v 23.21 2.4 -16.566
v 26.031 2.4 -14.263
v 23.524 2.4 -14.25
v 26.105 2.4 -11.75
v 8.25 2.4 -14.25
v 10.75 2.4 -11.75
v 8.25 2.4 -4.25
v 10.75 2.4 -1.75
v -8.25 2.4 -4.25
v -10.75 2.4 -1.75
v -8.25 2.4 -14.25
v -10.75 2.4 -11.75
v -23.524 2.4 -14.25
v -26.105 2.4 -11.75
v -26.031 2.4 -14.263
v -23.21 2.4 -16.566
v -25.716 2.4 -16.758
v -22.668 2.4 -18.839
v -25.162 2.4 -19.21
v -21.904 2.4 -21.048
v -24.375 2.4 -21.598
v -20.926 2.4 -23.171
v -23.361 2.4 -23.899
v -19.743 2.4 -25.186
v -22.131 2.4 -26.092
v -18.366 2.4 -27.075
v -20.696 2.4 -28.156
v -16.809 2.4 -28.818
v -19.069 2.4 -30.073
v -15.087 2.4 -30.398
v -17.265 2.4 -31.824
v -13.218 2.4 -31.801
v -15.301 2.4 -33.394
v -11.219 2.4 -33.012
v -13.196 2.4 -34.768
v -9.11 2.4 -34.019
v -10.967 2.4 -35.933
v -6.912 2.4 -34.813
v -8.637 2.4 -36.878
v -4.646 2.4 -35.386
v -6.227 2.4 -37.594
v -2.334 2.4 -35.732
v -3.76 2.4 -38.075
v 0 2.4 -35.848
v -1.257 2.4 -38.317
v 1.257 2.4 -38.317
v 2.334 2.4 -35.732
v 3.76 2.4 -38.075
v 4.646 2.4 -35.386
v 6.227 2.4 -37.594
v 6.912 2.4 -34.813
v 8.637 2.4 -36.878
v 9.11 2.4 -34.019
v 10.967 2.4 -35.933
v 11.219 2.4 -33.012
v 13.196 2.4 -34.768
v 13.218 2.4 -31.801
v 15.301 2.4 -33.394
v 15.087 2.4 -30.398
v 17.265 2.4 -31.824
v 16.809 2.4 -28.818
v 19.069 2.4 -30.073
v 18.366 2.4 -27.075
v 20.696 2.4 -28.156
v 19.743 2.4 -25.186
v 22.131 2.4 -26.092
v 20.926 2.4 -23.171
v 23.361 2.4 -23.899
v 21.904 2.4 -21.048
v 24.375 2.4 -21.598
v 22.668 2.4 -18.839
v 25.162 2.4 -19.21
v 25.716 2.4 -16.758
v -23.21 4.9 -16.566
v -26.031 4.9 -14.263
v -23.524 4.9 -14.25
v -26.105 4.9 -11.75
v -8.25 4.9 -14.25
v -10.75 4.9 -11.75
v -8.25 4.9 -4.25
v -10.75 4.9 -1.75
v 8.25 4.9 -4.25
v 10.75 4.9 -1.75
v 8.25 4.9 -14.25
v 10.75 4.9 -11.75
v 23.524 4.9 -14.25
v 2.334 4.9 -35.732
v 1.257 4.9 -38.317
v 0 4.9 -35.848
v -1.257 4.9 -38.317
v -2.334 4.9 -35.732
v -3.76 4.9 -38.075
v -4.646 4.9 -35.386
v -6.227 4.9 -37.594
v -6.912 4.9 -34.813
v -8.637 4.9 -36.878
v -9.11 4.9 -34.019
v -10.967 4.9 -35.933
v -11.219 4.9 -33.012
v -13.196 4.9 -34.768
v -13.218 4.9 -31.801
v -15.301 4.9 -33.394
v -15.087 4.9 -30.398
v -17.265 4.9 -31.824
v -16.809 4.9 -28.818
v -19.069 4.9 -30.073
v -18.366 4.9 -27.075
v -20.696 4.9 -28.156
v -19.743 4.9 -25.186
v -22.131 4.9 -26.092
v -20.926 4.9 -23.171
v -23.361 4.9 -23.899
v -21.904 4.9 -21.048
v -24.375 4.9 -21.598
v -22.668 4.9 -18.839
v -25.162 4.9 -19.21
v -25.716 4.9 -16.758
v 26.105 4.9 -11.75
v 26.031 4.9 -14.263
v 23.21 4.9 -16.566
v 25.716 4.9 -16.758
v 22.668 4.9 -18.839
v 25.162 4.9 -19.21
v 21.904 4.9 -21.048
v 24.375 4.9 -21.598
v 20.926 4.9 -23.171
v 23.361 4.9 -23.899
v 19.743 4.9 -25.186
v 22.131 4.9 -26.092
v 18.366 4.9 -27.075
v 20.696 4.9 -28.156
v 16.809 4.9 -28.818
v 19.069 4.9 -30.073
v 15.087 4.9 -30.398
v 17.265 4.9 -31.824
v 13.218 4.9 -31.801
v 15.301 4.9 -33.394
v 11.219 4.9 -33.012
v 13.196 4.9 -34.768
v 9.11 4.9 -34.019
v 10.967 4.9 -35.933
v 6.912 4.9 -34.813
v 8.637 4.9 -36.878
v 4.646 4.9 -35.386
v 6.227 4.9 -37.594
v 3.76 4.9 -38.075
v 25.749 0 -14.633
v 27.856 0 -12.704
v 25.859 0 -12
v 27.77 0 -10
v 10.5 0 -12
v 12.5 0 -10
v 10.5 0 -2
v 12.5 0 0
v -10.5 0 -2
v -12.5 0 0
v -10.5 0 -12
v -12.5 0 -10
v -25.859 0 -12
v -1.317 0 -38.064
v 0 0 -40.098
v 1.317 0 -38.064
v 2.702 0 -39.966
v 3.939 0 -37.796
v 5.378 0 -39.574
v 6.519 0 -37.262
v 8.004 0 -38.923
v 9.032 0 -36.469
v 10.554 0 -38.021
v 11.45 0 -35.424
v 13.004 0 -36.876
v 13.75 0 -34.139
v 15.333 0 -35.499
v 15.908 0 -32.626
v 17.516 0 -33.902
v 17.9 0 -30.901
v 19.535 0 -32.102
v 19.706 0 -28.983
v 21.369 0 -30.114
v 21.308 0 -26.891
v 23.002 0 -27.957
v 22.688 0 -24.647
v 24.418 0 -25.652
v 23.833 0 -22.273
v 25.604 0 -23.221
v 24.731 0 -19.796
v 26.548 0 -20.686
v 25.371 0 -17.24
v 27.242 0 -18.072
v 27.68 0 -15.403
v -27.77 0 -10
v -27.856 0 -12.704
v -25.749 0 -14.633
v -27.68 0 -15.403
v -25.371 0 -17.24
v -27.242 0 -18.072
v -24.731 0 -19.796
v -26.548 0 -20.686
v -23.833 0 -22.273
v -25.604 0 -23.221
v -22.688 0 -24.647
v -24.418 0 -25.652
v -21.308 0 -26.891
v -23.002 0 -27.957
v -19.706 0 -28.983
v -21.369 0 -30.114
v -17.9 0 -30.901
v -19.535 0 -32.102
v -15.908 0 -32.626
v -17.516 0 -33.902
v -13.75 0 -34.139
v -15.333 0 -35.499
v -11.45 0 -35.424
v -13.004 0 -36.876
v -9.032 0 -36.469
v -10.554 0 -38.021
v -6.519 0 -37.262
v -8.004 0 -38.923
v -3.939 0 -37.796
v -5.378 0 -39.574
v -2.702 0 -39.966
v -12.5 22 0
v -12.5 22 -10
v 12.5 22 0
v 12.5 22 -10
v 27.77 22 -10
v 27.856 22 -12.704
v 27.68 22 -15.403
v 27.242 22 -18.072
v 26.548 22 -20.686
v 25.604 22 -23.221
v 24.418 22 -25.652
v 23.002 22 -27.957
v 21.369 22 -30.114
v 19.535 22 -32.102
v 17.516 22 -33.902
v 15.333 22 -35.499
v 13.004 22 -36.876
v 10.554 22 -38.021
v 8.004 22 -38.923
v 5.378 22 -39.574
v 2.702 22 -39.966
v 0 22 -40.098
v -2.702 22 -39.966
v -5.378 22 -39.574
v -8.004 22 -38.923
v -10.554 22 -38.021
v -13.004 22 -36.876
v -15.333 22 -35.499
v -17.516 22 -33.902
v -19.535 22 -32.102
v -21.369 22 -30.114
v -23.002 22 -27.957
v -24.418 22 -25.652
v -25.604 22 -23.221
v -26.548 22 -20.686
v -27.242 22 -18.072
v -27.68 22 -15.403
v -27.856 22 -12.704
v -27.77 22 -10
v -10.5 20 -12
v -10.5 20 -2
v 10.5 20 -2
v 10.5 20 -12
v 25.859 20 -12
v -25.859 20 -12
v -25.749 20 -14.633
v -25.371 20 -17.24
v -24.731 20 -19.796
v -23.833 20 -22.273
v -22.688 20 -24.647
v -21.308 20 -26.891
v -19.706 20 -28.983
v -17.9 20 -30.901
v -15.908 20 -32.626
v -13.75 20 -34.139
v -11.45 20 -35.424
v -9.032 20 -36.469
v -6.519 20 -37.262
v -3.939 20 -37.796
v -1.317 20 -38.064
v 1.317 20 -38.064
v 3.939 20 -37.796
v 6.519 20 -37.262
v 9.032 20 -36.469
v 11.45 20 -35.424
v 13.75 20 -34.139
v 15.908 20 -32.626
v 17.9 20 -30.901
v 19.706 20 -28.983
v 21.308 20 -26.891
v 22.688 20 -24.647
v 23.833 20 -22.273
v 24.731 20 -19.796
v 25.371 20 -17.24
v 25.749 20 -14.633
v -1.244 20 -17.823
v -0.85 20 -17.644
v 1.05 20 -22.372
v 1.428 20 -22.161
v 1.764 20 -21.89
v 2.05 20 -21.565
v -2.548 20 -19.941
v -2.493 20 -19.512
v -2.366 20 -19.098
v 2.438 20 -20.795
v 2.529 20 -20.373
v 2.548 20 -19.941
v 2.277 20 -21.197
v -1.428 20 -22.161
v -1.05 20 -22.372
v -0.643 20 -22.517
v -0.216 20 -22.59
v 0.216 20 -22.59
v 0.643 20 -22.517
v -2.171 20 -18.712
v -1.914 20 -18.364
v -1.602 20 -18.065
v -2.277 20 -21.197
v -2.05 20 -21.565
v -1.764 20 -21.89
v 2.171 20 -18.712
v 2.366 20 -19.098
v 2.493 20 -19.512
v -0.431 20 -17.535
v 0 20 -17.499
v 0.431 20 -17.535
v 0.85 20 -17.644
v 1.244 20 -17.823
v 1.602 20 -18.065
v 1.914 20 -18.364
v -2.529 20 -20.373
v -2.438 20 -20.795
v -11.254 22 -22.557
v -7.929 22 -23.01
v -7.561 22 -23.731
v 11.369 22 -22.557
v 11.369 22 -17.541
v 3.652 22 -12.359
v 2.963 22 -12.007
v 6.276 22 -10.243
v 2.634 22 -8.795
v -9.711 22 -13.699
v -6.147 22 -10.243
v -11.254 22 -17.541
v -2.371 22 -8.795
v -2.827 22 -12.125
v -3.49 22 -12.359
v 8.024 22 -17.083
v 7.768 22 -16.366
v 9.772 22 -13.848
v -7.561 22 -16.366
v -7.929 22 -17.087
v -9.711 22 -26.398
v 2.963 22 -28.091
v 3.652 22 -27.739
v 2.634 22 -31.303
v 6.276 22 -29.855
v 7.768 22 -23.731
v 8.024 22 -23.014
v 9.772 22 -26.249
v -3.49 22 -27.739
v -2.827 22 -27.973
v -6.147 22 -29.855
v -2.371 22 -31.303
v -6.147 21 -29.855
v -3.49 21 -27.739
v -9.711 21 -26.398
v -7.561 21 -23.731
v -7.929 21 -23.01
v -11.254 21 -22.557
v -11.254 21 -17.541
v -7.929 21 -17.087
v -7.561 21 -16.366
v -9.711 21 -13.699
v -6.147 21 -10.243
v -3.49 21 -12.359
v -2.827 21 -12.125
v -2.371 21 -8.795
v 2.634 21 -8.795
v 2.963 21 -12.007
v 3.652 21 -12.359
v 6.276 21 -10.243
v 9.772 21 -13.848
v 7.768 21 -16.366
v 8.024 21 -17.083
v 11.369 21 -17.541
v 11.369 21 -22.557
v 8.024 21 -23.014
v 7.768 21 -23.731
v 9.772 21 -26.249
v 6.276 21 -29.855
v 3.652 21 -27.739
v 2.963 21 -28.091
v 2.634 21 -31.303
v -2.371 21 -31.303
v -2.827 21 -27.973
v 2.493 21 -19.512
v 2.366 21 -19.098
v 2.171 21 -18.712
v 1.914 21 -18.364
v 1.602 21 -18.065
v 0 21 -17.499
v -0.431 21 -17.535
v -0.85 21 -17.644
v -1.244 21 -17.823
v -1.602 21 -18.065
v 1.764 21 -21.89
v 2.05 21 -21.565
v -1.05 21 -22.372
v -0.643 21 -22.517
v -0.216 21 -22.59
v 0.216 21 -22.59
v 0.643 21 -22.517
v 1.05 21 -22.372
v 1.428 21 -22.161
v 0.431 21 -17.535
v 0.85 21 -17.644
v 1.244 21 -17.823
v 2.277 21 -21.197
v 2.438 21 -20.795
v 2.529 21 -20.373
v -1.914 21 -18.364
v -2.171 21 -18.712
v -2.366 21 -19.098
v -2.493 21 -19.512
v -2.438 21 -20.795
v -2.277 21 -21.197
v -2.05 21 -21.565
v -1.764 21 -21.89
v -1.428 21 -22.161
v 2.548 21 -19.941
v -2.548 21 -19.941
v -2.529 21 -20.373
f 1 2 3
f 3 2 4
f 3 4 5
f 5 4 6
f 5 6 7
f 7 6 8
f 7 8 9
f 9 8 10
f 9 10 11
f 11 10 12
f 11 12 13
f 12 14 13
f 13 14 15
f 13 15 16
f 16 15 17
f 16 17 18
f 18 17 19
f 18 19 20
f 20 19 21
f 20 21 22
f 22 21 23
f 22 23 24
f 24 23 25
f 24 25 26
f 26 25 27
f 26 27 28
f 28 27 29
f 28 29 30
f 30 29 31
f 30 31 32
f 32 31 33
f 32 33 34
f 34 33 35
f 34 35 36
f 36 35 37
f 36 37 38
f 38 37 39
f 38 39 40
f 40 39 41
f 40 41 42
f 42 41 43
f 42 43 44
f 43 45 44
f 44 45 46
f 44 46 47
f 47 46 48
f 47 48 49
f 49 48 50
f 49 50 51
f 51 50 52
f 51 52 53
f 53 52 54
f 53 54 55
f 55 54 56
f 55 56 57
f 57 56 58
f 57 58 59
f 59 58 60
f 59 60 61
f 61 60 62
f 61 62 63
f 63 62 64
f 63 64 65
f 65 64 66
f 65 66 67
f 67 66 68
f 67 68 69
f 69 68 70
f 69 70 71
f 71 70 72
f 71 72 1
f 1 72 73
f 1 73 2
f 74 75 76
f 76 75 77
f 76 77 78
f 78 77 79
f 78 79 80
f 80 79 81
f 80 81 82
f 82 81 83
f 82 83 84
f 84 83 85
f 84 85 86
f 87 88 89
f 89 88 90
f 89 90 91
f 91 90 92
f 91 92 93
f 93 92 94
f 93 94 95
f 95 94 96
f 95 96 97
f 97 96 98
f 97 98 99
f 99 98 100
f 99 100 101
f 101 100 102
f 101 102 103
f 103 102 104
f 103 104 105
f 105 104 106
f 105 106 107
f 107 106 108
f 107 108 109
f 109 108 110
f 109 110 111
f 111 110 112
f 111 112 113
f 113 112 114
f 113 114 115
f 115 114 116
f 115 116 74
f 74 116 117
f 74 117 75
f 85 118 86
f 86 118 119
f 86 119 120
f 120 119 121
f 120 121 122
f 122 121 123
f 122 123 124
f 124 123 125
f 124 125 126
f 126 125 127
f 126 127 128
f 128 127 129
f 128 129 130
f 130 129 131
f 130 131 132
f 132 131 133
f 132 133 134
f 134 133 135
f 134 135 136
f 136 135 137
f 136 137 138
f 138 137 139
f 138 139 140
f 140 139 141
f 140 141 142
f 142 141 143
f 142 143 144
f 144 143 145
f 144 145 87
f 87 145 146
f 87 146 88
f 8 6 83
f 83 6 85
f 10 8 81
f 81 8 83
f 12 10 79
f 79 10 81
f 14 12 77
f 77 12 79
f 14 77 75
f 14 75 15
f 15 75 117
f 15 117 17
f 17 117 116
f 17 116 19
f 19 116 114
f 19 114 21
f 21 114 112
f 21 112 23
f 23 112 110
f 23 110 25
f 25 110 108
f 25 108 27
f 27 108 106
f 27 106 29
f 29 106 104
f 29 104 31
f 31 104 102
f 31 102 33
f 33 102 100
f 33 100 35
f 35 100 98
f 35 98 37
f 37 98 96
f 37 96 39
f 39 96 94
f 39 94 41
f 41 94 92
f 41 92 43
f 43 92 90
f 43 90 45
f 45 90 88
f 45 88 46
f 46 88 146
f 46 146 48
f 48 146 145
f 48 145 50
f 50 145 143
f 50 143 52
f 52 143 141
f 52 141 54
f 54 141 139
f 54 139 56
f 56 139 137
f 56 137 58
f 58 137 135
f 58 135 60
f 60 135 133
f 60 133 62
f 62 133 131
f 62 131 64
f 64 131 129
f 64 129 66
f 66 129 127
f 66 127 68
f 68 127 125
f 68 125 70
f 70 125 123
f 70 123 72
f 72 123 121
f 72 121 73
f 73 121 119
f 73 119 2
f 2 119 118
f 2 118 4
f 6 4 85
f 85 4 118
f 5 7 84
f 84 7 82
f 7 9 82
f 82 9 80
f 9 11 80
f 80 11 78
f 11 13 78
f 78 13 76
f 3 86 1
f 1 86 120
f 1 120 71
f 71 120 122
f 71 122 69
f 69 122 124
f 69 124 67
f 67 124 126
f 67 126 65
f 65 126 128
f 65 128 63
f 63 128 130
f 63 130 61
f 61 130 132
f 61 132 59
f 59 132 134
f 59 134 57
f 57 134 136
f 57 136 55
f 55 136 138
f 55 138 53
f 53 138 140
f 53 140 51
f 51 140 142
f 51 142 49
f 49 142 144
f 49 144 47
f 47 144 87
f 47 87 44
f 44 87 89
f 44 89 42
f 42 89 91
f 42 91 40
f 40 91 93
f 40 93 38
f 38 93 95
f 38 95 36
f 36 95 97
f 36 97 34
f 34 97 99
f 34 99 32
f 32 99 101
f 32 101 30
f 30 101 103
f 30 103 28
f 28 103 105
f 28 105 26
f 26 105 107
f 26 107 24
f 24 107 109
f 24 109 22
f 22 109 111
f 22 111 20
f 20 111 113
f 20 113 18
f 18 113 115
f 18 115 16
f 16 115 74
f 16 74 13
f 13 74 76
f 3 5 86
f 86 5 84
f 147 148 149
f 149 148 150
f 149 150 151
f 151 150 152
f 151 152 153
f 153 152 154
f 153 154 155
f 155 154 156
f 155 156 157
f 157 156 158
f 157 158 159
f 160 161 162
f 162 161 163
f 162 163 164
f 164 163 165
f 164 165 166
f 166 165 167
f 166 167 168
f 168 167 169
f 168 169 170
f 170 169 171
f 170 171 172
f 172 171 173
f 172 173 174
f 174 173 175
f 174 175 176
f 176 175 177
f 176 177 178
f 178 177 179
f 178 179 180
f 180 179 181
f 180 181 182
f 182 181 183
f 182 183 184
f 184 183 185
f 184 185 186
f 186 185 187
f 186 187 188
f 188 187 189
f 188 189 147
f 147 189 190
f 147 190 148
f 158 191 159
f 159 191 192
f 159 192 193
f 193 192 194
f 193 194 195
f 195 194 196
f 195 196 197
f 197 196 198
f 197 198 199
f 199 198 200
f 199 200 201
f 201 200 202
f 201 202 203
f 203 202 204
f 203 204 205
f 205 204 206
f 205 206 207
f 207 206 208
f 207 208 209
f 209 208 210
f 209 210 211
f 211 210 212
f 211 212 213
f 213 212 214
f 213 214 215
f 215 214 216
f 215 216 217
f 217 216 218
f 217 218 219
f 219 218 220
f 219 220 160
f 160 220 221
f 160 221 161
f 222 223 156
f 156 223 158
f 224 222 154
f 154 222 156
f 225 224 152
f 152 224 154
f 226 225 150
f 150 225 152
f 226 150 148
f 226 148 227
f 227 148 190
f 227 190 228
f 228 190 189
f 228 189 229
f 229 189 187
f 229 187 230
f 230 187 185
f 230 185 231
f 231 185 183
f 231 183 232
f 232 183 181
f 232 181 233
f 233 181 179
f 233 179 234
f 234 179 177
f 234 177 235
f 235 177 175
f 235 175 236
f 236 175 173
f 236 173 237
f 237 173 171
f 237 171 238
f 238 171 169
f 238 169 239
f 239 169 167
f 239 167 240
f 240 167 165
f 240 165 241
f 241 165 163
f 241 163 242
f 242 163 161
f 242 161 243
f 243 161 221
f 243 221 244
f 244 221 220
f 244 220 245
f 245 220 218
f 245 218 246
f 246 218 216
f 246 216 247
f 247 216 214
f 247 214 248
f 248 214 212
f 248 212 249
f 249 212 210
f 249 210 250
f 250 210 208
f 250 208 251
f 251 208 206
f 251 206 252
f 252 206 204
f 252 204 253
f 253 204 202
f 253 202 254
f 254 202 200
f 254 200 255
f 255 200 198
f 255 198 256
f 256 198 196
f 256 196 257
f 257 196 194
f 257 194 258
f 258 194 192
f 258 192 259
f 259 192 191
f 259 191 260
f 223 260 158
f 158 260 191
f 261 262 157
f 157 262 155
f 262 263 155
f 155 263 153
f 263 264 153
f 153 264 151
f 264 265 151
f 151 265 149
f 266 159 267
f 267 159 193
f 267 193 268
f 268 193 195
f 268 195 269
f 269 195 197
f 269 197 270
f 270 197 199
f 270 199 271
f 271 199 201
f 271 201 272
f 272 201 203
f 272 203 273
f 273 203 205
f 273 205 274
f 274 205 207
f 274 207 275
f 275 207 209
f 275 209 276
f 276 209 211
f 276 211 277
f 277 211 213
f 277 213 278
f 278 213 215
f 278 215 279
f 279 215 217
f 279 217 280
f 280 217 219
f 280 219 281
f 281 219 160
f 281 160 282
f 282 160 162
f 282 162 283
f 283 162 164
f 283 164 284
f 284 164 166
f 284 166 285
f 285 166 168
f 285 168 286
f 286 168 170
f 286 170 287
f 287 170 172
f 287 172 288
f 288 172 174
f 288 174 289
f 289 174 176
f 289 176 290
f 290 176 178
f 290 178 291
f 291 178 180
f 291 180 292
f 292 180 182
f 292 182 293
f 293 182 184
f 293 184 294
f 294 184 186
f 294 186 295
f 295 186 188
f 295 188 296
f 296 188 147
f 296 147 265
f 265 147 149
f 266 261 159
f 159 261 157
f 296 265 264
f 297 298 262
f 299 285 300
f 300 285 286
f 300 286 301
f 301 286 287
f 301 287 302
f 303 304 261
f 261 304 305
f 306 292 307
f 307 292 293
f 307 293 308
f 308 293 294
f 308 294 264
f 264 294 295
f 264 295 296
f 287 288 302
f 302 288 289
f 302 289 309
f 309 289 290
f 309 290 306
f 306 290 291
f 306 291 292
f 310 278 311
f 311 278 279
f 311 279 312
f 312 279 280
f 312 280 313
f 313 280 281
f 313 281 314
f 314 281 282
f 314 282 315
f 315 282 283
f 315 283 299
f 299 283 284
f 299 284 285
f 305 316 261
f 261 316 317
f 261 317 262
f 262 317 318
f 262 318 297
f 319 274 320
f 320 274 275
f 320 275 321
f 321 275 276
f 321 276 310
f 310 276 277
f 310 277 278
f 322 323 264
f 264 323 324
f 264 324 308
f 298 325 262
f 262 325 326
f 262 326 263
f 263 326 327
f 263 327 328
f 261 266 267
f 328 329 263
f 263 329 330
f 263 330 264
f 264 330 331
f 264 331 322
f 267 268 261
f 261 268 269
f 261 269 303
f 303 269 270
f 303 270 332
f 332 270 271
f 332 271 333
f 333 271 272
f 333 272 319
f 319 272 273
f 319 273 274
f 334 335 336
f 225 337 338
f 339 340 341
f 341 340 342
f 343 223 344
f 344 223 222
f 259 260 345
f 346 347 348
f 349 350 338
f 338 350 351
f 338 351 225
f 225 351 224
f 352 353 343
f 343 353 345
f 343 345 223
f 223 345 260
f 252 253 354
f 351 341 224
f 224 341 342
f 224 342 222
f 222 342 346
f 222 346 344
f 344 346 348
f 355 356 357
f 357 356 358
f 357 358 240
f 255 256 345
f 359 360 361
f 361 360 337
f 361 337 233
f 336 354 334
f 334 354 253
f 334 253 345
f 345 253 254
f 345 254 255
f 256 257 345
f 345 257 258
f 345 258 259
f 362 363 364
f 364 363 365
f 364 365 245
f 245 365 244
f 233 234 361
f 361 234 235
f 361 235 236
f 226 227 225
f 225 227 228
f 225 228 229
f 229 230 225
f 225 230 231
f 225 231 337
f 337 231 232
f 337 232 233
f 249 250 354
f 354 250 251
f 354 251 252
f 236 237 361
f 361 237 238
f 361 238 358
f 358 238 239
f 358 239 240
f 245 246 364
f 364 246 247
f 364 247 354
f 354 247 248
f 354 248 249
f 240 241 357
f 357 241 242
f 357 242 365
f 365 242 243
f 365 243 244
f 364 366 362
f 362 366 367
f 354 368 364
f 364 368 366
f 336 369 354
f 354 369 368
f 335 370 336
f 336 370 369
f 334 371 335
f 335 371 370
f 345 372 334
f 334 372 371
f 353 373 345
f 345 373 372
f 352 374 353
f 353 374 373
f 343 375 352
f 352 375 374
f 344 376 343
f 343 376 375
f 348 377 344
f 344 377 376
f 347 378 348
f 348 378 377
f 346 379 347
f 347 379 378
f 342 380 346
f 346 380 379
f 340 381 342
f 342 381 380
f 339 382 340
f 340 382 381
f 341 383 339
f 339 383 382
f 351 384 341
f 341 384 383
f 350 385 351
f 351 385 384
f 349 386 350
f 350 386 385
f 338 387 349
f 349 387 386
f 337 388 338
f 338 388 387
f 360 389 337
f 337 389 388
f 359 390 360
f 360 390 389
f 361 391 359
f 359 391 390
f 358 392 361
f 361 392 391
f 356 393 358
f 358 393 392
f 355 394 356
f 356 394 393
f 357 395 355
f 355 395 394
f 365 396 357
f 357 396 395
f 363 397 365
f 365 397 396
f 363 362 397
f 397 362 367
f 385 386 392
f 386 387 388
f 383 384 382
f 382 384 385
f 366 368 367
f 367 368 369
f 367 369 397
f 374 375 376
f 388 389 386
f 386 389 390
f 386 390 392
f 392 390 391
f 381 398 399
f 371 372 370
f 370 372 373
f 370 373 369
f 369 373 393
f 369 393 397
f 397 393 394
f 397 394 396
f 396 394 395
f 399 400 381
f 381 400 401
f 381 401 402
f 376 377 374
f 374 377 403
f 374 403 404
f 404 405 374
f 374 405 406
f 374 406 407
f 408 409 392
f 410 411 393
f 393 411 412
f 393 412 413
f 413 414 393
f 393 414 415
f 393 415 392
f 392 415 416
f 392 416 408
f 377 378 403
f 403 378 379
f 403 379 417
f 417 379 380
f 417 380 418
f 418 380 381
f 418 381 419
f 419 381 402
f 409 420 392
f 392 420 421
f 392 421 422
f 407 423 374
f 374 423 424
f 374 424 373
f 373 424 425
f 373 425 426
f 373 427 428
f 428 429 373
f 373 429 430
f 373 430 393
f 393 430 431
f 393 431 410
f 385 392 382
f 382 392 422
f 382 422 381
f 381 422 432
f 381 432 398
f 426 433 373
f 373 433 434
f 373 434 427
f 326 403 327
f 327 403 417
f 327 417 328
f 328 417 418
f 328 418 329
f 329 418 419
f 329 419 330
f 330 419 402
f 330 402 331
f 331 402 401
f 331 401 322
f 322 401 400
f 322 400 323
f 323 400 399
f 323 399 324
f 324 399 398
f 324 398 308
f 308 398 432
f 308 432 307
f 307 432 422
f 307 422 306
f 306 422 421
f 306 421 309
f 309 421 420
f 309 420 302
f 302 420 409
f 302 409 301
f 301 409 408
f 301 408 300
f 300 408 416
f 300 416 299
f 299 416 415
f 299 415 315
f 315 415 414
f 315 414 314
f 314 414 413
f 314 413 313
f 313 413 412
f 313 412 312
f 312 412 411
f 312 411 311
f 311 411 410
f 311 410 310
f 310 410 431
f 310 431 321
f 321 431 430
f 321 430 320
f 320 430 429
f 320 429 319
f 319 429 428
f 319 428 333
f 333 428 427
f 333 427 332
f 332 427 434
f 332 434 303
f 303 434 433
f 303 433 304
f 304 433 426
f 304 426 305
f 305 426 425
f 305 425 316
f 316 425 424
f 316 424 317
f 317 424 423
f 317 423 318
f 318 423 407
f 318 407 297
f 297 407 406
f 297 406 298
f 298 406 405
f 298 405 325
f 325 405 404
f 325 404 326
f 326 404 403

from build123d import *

# Parameters (mm, degrees)
EXTRUIR_L_MINA1_DEPTH   = 20
SALIENTE_EXTRUIR1_DEPTH = 2
EXTRUIR_L_MINA2_DEPTH   = 2.5
ENVOLVER1_START         = -1
ENVOLVER1_DEPTH         = 1
CROQUIS13_R             = 2.55
CORTAR_EXTRUIR1_DEPTH   = 54.553658795


# Read off the part's stored shape, not the designer's step: Envolver1
with BuildPart() as part:
    # Croquis1 → Extruir-Lámina1 (new body)
    with BuildSketch(Plane(origin=(0, 0, 0), x_dir=(1, 0, 0), z_dir=(0, 1, 0))):
        with BuildLine():
            Line((-27.77, 10), (-12.5, 10))
            Line((-12.5, 10), (-12.5, 0))
            Line((-12.5, 0), (12.5, 0))
            Line((12.5, 0), (12.5, 10))
            Line((12.5, 10), (27.77, 10))
            ThreePointArc((27.77, 10), (0, 40.097565641), (-27.77, 10))
        make_face()
        with BuildLine():
            Line((-25.858908766, 12), (-10.5, 12))
            Line((-10.5, 12), (-10.5, 2))
            Line((-10.5, 2), (10.5, 2))
            Line((10.5, 2), (10.5, 12))
            Line((10.5, 12), (25.858908766, 12))
            ThreePointArc((25.858908766, 12), (0, 38.097565641), (-25.858908766, 12))
        make_face(mode=Mode.SUBTRACT)
    extrude(amount=EXTRUIR_L_MINA1_DEPTH)

    # Croquis2 → Saliente-Extruir1 (add)
    with BuildSketch(Plane(origin=(0, 20, 0), x_dir=(1, 0, 0), z_dir=(0, 1, 0))):
        with BuildLine():
            Line((12.5, 10), (27.77, 10))
            ThreePointArc((27.77, 10), (0, 40.097565641), (-27.77, 10))
            Line((-27.77, 10), (-12.5, 10))
            Line((-12.5, 10), (-12.5, 0))
            Line((-12.5, 0), (12.5, 0))
            Line((12.5, 0), (12.5, 10))
        make_face()
    extrude(amount=SALIENTE_EXTRUIR1_DEPTH)

    # Envolver1 outline → Envolver1 (cut)
    with BuildSketch(Plane(origin=(0, 22, 0), x_dir=(1, 0, 0), z_dir=(0, 1, 0)).offset(ENVOLVER1_START)):
        Polygon((-3.489748997, 27.738758035), (-6.147187537, 29.854623251), (-9.711069089, 26.398480357), (-7.560564468, 23.731186854), (-7.929128313, 23.010388183), (-11.254274193, 22.556610346), (-11.254274193, 17.540955296), (-7.929128313, 17.087177459), (-7.560564468, 16.366378787), (-9.711069089, 13.699085285), (-6.147187537, 10.242942391), (-3.489748997, 12.358807607), (-2.826803524, 12.124826852), (-2.371254467, 8.794541744), (2.633615094, 8.794541744), (2.963448904, 12.006836247), (3.651797726, 12.358807607), (6.27612761, 10.242942391), (9.772472758, 13.848279425), (7.767550058, 16.366378787), (8.024300184, 17.08340881), (11.369187461, 17.540955296), (11.369187461, 22.556610346), (8.024300184, 23.014156831), (7.767550058, 23.731186854), (9.772472758, 26.249286217), (6.27612761, 29.854623251), (3.651797726, 27.738758035), (2.963448904, 28.090729394), (2.633615094, 31.303023897), (-2.371254467, 31.303023897), (-2.826803524, 27.97273879), align=None)
    extrude(amount=ENVOLVER1_DEPTH, mode=Mode.SUBTRACT)

    # Croquis13 → Cortar-Extruir1 (cut, through all)
    with BuildSketch(Plane(origin=(0, 22, 0), x_dir=(1, 0, 0), z_dir=(0, 1, 0))):
        with Locations(Location((0, 20.048782821, 0), (0, 0, 270))):
            Circle(CROQUIS13_R)
    extrude(amount=-CORTAR_EXTRUIR1_DEPTH, mode=Mode.SUBTRACT)


with BuildPart() as body_2:
    # Croquis9 → Extruir-Lámina2 (new body)
    with BuildSketch(Plane(origin=(0, 4.9, 0), x_dir=(-1, 0, 0), z_dir=(0, -1, 0))):
        with BuildLine():
            Line((-26.105447319, 11.75), (-10.75, 11.75))
            Line((-10.75, 11.75), (-10.75, 1.75))
            Line((-10.75, 1.75), (10.75, 1.75))
            Line((10.75, 1.75), (10.75, 11.75))
            Line((10.75, 11.75), (26.105447319, 11.75))
            ThreePointArc((26.105447319, 11.75), (0, 38.347565641), (-26.105447319, 11.75))
        make_face()
        with BuildLine():
            Line((-23.524077197, 14.25), (-8.25, 14.25))
            Line((-8.25, 14.25), (-8.25, 4.25))
            Line((-8.25, 4.25), (8.25, 4.25))
            Line((8.25, 4.25), (8.25, 14.25))
            Line((8.25, 14.25), (23.524077197, 14.25))
            ThreePointArc((23.524077197, 14.25), (0, 35.847565641), (-23.524077197, 14.25))
        make_face(mode=Mode.SUBTRACT)
    extrude(amount=EXTRUIR_L_MINA2_DEPTH)


solid = Compound([part.part, body_2.part])
